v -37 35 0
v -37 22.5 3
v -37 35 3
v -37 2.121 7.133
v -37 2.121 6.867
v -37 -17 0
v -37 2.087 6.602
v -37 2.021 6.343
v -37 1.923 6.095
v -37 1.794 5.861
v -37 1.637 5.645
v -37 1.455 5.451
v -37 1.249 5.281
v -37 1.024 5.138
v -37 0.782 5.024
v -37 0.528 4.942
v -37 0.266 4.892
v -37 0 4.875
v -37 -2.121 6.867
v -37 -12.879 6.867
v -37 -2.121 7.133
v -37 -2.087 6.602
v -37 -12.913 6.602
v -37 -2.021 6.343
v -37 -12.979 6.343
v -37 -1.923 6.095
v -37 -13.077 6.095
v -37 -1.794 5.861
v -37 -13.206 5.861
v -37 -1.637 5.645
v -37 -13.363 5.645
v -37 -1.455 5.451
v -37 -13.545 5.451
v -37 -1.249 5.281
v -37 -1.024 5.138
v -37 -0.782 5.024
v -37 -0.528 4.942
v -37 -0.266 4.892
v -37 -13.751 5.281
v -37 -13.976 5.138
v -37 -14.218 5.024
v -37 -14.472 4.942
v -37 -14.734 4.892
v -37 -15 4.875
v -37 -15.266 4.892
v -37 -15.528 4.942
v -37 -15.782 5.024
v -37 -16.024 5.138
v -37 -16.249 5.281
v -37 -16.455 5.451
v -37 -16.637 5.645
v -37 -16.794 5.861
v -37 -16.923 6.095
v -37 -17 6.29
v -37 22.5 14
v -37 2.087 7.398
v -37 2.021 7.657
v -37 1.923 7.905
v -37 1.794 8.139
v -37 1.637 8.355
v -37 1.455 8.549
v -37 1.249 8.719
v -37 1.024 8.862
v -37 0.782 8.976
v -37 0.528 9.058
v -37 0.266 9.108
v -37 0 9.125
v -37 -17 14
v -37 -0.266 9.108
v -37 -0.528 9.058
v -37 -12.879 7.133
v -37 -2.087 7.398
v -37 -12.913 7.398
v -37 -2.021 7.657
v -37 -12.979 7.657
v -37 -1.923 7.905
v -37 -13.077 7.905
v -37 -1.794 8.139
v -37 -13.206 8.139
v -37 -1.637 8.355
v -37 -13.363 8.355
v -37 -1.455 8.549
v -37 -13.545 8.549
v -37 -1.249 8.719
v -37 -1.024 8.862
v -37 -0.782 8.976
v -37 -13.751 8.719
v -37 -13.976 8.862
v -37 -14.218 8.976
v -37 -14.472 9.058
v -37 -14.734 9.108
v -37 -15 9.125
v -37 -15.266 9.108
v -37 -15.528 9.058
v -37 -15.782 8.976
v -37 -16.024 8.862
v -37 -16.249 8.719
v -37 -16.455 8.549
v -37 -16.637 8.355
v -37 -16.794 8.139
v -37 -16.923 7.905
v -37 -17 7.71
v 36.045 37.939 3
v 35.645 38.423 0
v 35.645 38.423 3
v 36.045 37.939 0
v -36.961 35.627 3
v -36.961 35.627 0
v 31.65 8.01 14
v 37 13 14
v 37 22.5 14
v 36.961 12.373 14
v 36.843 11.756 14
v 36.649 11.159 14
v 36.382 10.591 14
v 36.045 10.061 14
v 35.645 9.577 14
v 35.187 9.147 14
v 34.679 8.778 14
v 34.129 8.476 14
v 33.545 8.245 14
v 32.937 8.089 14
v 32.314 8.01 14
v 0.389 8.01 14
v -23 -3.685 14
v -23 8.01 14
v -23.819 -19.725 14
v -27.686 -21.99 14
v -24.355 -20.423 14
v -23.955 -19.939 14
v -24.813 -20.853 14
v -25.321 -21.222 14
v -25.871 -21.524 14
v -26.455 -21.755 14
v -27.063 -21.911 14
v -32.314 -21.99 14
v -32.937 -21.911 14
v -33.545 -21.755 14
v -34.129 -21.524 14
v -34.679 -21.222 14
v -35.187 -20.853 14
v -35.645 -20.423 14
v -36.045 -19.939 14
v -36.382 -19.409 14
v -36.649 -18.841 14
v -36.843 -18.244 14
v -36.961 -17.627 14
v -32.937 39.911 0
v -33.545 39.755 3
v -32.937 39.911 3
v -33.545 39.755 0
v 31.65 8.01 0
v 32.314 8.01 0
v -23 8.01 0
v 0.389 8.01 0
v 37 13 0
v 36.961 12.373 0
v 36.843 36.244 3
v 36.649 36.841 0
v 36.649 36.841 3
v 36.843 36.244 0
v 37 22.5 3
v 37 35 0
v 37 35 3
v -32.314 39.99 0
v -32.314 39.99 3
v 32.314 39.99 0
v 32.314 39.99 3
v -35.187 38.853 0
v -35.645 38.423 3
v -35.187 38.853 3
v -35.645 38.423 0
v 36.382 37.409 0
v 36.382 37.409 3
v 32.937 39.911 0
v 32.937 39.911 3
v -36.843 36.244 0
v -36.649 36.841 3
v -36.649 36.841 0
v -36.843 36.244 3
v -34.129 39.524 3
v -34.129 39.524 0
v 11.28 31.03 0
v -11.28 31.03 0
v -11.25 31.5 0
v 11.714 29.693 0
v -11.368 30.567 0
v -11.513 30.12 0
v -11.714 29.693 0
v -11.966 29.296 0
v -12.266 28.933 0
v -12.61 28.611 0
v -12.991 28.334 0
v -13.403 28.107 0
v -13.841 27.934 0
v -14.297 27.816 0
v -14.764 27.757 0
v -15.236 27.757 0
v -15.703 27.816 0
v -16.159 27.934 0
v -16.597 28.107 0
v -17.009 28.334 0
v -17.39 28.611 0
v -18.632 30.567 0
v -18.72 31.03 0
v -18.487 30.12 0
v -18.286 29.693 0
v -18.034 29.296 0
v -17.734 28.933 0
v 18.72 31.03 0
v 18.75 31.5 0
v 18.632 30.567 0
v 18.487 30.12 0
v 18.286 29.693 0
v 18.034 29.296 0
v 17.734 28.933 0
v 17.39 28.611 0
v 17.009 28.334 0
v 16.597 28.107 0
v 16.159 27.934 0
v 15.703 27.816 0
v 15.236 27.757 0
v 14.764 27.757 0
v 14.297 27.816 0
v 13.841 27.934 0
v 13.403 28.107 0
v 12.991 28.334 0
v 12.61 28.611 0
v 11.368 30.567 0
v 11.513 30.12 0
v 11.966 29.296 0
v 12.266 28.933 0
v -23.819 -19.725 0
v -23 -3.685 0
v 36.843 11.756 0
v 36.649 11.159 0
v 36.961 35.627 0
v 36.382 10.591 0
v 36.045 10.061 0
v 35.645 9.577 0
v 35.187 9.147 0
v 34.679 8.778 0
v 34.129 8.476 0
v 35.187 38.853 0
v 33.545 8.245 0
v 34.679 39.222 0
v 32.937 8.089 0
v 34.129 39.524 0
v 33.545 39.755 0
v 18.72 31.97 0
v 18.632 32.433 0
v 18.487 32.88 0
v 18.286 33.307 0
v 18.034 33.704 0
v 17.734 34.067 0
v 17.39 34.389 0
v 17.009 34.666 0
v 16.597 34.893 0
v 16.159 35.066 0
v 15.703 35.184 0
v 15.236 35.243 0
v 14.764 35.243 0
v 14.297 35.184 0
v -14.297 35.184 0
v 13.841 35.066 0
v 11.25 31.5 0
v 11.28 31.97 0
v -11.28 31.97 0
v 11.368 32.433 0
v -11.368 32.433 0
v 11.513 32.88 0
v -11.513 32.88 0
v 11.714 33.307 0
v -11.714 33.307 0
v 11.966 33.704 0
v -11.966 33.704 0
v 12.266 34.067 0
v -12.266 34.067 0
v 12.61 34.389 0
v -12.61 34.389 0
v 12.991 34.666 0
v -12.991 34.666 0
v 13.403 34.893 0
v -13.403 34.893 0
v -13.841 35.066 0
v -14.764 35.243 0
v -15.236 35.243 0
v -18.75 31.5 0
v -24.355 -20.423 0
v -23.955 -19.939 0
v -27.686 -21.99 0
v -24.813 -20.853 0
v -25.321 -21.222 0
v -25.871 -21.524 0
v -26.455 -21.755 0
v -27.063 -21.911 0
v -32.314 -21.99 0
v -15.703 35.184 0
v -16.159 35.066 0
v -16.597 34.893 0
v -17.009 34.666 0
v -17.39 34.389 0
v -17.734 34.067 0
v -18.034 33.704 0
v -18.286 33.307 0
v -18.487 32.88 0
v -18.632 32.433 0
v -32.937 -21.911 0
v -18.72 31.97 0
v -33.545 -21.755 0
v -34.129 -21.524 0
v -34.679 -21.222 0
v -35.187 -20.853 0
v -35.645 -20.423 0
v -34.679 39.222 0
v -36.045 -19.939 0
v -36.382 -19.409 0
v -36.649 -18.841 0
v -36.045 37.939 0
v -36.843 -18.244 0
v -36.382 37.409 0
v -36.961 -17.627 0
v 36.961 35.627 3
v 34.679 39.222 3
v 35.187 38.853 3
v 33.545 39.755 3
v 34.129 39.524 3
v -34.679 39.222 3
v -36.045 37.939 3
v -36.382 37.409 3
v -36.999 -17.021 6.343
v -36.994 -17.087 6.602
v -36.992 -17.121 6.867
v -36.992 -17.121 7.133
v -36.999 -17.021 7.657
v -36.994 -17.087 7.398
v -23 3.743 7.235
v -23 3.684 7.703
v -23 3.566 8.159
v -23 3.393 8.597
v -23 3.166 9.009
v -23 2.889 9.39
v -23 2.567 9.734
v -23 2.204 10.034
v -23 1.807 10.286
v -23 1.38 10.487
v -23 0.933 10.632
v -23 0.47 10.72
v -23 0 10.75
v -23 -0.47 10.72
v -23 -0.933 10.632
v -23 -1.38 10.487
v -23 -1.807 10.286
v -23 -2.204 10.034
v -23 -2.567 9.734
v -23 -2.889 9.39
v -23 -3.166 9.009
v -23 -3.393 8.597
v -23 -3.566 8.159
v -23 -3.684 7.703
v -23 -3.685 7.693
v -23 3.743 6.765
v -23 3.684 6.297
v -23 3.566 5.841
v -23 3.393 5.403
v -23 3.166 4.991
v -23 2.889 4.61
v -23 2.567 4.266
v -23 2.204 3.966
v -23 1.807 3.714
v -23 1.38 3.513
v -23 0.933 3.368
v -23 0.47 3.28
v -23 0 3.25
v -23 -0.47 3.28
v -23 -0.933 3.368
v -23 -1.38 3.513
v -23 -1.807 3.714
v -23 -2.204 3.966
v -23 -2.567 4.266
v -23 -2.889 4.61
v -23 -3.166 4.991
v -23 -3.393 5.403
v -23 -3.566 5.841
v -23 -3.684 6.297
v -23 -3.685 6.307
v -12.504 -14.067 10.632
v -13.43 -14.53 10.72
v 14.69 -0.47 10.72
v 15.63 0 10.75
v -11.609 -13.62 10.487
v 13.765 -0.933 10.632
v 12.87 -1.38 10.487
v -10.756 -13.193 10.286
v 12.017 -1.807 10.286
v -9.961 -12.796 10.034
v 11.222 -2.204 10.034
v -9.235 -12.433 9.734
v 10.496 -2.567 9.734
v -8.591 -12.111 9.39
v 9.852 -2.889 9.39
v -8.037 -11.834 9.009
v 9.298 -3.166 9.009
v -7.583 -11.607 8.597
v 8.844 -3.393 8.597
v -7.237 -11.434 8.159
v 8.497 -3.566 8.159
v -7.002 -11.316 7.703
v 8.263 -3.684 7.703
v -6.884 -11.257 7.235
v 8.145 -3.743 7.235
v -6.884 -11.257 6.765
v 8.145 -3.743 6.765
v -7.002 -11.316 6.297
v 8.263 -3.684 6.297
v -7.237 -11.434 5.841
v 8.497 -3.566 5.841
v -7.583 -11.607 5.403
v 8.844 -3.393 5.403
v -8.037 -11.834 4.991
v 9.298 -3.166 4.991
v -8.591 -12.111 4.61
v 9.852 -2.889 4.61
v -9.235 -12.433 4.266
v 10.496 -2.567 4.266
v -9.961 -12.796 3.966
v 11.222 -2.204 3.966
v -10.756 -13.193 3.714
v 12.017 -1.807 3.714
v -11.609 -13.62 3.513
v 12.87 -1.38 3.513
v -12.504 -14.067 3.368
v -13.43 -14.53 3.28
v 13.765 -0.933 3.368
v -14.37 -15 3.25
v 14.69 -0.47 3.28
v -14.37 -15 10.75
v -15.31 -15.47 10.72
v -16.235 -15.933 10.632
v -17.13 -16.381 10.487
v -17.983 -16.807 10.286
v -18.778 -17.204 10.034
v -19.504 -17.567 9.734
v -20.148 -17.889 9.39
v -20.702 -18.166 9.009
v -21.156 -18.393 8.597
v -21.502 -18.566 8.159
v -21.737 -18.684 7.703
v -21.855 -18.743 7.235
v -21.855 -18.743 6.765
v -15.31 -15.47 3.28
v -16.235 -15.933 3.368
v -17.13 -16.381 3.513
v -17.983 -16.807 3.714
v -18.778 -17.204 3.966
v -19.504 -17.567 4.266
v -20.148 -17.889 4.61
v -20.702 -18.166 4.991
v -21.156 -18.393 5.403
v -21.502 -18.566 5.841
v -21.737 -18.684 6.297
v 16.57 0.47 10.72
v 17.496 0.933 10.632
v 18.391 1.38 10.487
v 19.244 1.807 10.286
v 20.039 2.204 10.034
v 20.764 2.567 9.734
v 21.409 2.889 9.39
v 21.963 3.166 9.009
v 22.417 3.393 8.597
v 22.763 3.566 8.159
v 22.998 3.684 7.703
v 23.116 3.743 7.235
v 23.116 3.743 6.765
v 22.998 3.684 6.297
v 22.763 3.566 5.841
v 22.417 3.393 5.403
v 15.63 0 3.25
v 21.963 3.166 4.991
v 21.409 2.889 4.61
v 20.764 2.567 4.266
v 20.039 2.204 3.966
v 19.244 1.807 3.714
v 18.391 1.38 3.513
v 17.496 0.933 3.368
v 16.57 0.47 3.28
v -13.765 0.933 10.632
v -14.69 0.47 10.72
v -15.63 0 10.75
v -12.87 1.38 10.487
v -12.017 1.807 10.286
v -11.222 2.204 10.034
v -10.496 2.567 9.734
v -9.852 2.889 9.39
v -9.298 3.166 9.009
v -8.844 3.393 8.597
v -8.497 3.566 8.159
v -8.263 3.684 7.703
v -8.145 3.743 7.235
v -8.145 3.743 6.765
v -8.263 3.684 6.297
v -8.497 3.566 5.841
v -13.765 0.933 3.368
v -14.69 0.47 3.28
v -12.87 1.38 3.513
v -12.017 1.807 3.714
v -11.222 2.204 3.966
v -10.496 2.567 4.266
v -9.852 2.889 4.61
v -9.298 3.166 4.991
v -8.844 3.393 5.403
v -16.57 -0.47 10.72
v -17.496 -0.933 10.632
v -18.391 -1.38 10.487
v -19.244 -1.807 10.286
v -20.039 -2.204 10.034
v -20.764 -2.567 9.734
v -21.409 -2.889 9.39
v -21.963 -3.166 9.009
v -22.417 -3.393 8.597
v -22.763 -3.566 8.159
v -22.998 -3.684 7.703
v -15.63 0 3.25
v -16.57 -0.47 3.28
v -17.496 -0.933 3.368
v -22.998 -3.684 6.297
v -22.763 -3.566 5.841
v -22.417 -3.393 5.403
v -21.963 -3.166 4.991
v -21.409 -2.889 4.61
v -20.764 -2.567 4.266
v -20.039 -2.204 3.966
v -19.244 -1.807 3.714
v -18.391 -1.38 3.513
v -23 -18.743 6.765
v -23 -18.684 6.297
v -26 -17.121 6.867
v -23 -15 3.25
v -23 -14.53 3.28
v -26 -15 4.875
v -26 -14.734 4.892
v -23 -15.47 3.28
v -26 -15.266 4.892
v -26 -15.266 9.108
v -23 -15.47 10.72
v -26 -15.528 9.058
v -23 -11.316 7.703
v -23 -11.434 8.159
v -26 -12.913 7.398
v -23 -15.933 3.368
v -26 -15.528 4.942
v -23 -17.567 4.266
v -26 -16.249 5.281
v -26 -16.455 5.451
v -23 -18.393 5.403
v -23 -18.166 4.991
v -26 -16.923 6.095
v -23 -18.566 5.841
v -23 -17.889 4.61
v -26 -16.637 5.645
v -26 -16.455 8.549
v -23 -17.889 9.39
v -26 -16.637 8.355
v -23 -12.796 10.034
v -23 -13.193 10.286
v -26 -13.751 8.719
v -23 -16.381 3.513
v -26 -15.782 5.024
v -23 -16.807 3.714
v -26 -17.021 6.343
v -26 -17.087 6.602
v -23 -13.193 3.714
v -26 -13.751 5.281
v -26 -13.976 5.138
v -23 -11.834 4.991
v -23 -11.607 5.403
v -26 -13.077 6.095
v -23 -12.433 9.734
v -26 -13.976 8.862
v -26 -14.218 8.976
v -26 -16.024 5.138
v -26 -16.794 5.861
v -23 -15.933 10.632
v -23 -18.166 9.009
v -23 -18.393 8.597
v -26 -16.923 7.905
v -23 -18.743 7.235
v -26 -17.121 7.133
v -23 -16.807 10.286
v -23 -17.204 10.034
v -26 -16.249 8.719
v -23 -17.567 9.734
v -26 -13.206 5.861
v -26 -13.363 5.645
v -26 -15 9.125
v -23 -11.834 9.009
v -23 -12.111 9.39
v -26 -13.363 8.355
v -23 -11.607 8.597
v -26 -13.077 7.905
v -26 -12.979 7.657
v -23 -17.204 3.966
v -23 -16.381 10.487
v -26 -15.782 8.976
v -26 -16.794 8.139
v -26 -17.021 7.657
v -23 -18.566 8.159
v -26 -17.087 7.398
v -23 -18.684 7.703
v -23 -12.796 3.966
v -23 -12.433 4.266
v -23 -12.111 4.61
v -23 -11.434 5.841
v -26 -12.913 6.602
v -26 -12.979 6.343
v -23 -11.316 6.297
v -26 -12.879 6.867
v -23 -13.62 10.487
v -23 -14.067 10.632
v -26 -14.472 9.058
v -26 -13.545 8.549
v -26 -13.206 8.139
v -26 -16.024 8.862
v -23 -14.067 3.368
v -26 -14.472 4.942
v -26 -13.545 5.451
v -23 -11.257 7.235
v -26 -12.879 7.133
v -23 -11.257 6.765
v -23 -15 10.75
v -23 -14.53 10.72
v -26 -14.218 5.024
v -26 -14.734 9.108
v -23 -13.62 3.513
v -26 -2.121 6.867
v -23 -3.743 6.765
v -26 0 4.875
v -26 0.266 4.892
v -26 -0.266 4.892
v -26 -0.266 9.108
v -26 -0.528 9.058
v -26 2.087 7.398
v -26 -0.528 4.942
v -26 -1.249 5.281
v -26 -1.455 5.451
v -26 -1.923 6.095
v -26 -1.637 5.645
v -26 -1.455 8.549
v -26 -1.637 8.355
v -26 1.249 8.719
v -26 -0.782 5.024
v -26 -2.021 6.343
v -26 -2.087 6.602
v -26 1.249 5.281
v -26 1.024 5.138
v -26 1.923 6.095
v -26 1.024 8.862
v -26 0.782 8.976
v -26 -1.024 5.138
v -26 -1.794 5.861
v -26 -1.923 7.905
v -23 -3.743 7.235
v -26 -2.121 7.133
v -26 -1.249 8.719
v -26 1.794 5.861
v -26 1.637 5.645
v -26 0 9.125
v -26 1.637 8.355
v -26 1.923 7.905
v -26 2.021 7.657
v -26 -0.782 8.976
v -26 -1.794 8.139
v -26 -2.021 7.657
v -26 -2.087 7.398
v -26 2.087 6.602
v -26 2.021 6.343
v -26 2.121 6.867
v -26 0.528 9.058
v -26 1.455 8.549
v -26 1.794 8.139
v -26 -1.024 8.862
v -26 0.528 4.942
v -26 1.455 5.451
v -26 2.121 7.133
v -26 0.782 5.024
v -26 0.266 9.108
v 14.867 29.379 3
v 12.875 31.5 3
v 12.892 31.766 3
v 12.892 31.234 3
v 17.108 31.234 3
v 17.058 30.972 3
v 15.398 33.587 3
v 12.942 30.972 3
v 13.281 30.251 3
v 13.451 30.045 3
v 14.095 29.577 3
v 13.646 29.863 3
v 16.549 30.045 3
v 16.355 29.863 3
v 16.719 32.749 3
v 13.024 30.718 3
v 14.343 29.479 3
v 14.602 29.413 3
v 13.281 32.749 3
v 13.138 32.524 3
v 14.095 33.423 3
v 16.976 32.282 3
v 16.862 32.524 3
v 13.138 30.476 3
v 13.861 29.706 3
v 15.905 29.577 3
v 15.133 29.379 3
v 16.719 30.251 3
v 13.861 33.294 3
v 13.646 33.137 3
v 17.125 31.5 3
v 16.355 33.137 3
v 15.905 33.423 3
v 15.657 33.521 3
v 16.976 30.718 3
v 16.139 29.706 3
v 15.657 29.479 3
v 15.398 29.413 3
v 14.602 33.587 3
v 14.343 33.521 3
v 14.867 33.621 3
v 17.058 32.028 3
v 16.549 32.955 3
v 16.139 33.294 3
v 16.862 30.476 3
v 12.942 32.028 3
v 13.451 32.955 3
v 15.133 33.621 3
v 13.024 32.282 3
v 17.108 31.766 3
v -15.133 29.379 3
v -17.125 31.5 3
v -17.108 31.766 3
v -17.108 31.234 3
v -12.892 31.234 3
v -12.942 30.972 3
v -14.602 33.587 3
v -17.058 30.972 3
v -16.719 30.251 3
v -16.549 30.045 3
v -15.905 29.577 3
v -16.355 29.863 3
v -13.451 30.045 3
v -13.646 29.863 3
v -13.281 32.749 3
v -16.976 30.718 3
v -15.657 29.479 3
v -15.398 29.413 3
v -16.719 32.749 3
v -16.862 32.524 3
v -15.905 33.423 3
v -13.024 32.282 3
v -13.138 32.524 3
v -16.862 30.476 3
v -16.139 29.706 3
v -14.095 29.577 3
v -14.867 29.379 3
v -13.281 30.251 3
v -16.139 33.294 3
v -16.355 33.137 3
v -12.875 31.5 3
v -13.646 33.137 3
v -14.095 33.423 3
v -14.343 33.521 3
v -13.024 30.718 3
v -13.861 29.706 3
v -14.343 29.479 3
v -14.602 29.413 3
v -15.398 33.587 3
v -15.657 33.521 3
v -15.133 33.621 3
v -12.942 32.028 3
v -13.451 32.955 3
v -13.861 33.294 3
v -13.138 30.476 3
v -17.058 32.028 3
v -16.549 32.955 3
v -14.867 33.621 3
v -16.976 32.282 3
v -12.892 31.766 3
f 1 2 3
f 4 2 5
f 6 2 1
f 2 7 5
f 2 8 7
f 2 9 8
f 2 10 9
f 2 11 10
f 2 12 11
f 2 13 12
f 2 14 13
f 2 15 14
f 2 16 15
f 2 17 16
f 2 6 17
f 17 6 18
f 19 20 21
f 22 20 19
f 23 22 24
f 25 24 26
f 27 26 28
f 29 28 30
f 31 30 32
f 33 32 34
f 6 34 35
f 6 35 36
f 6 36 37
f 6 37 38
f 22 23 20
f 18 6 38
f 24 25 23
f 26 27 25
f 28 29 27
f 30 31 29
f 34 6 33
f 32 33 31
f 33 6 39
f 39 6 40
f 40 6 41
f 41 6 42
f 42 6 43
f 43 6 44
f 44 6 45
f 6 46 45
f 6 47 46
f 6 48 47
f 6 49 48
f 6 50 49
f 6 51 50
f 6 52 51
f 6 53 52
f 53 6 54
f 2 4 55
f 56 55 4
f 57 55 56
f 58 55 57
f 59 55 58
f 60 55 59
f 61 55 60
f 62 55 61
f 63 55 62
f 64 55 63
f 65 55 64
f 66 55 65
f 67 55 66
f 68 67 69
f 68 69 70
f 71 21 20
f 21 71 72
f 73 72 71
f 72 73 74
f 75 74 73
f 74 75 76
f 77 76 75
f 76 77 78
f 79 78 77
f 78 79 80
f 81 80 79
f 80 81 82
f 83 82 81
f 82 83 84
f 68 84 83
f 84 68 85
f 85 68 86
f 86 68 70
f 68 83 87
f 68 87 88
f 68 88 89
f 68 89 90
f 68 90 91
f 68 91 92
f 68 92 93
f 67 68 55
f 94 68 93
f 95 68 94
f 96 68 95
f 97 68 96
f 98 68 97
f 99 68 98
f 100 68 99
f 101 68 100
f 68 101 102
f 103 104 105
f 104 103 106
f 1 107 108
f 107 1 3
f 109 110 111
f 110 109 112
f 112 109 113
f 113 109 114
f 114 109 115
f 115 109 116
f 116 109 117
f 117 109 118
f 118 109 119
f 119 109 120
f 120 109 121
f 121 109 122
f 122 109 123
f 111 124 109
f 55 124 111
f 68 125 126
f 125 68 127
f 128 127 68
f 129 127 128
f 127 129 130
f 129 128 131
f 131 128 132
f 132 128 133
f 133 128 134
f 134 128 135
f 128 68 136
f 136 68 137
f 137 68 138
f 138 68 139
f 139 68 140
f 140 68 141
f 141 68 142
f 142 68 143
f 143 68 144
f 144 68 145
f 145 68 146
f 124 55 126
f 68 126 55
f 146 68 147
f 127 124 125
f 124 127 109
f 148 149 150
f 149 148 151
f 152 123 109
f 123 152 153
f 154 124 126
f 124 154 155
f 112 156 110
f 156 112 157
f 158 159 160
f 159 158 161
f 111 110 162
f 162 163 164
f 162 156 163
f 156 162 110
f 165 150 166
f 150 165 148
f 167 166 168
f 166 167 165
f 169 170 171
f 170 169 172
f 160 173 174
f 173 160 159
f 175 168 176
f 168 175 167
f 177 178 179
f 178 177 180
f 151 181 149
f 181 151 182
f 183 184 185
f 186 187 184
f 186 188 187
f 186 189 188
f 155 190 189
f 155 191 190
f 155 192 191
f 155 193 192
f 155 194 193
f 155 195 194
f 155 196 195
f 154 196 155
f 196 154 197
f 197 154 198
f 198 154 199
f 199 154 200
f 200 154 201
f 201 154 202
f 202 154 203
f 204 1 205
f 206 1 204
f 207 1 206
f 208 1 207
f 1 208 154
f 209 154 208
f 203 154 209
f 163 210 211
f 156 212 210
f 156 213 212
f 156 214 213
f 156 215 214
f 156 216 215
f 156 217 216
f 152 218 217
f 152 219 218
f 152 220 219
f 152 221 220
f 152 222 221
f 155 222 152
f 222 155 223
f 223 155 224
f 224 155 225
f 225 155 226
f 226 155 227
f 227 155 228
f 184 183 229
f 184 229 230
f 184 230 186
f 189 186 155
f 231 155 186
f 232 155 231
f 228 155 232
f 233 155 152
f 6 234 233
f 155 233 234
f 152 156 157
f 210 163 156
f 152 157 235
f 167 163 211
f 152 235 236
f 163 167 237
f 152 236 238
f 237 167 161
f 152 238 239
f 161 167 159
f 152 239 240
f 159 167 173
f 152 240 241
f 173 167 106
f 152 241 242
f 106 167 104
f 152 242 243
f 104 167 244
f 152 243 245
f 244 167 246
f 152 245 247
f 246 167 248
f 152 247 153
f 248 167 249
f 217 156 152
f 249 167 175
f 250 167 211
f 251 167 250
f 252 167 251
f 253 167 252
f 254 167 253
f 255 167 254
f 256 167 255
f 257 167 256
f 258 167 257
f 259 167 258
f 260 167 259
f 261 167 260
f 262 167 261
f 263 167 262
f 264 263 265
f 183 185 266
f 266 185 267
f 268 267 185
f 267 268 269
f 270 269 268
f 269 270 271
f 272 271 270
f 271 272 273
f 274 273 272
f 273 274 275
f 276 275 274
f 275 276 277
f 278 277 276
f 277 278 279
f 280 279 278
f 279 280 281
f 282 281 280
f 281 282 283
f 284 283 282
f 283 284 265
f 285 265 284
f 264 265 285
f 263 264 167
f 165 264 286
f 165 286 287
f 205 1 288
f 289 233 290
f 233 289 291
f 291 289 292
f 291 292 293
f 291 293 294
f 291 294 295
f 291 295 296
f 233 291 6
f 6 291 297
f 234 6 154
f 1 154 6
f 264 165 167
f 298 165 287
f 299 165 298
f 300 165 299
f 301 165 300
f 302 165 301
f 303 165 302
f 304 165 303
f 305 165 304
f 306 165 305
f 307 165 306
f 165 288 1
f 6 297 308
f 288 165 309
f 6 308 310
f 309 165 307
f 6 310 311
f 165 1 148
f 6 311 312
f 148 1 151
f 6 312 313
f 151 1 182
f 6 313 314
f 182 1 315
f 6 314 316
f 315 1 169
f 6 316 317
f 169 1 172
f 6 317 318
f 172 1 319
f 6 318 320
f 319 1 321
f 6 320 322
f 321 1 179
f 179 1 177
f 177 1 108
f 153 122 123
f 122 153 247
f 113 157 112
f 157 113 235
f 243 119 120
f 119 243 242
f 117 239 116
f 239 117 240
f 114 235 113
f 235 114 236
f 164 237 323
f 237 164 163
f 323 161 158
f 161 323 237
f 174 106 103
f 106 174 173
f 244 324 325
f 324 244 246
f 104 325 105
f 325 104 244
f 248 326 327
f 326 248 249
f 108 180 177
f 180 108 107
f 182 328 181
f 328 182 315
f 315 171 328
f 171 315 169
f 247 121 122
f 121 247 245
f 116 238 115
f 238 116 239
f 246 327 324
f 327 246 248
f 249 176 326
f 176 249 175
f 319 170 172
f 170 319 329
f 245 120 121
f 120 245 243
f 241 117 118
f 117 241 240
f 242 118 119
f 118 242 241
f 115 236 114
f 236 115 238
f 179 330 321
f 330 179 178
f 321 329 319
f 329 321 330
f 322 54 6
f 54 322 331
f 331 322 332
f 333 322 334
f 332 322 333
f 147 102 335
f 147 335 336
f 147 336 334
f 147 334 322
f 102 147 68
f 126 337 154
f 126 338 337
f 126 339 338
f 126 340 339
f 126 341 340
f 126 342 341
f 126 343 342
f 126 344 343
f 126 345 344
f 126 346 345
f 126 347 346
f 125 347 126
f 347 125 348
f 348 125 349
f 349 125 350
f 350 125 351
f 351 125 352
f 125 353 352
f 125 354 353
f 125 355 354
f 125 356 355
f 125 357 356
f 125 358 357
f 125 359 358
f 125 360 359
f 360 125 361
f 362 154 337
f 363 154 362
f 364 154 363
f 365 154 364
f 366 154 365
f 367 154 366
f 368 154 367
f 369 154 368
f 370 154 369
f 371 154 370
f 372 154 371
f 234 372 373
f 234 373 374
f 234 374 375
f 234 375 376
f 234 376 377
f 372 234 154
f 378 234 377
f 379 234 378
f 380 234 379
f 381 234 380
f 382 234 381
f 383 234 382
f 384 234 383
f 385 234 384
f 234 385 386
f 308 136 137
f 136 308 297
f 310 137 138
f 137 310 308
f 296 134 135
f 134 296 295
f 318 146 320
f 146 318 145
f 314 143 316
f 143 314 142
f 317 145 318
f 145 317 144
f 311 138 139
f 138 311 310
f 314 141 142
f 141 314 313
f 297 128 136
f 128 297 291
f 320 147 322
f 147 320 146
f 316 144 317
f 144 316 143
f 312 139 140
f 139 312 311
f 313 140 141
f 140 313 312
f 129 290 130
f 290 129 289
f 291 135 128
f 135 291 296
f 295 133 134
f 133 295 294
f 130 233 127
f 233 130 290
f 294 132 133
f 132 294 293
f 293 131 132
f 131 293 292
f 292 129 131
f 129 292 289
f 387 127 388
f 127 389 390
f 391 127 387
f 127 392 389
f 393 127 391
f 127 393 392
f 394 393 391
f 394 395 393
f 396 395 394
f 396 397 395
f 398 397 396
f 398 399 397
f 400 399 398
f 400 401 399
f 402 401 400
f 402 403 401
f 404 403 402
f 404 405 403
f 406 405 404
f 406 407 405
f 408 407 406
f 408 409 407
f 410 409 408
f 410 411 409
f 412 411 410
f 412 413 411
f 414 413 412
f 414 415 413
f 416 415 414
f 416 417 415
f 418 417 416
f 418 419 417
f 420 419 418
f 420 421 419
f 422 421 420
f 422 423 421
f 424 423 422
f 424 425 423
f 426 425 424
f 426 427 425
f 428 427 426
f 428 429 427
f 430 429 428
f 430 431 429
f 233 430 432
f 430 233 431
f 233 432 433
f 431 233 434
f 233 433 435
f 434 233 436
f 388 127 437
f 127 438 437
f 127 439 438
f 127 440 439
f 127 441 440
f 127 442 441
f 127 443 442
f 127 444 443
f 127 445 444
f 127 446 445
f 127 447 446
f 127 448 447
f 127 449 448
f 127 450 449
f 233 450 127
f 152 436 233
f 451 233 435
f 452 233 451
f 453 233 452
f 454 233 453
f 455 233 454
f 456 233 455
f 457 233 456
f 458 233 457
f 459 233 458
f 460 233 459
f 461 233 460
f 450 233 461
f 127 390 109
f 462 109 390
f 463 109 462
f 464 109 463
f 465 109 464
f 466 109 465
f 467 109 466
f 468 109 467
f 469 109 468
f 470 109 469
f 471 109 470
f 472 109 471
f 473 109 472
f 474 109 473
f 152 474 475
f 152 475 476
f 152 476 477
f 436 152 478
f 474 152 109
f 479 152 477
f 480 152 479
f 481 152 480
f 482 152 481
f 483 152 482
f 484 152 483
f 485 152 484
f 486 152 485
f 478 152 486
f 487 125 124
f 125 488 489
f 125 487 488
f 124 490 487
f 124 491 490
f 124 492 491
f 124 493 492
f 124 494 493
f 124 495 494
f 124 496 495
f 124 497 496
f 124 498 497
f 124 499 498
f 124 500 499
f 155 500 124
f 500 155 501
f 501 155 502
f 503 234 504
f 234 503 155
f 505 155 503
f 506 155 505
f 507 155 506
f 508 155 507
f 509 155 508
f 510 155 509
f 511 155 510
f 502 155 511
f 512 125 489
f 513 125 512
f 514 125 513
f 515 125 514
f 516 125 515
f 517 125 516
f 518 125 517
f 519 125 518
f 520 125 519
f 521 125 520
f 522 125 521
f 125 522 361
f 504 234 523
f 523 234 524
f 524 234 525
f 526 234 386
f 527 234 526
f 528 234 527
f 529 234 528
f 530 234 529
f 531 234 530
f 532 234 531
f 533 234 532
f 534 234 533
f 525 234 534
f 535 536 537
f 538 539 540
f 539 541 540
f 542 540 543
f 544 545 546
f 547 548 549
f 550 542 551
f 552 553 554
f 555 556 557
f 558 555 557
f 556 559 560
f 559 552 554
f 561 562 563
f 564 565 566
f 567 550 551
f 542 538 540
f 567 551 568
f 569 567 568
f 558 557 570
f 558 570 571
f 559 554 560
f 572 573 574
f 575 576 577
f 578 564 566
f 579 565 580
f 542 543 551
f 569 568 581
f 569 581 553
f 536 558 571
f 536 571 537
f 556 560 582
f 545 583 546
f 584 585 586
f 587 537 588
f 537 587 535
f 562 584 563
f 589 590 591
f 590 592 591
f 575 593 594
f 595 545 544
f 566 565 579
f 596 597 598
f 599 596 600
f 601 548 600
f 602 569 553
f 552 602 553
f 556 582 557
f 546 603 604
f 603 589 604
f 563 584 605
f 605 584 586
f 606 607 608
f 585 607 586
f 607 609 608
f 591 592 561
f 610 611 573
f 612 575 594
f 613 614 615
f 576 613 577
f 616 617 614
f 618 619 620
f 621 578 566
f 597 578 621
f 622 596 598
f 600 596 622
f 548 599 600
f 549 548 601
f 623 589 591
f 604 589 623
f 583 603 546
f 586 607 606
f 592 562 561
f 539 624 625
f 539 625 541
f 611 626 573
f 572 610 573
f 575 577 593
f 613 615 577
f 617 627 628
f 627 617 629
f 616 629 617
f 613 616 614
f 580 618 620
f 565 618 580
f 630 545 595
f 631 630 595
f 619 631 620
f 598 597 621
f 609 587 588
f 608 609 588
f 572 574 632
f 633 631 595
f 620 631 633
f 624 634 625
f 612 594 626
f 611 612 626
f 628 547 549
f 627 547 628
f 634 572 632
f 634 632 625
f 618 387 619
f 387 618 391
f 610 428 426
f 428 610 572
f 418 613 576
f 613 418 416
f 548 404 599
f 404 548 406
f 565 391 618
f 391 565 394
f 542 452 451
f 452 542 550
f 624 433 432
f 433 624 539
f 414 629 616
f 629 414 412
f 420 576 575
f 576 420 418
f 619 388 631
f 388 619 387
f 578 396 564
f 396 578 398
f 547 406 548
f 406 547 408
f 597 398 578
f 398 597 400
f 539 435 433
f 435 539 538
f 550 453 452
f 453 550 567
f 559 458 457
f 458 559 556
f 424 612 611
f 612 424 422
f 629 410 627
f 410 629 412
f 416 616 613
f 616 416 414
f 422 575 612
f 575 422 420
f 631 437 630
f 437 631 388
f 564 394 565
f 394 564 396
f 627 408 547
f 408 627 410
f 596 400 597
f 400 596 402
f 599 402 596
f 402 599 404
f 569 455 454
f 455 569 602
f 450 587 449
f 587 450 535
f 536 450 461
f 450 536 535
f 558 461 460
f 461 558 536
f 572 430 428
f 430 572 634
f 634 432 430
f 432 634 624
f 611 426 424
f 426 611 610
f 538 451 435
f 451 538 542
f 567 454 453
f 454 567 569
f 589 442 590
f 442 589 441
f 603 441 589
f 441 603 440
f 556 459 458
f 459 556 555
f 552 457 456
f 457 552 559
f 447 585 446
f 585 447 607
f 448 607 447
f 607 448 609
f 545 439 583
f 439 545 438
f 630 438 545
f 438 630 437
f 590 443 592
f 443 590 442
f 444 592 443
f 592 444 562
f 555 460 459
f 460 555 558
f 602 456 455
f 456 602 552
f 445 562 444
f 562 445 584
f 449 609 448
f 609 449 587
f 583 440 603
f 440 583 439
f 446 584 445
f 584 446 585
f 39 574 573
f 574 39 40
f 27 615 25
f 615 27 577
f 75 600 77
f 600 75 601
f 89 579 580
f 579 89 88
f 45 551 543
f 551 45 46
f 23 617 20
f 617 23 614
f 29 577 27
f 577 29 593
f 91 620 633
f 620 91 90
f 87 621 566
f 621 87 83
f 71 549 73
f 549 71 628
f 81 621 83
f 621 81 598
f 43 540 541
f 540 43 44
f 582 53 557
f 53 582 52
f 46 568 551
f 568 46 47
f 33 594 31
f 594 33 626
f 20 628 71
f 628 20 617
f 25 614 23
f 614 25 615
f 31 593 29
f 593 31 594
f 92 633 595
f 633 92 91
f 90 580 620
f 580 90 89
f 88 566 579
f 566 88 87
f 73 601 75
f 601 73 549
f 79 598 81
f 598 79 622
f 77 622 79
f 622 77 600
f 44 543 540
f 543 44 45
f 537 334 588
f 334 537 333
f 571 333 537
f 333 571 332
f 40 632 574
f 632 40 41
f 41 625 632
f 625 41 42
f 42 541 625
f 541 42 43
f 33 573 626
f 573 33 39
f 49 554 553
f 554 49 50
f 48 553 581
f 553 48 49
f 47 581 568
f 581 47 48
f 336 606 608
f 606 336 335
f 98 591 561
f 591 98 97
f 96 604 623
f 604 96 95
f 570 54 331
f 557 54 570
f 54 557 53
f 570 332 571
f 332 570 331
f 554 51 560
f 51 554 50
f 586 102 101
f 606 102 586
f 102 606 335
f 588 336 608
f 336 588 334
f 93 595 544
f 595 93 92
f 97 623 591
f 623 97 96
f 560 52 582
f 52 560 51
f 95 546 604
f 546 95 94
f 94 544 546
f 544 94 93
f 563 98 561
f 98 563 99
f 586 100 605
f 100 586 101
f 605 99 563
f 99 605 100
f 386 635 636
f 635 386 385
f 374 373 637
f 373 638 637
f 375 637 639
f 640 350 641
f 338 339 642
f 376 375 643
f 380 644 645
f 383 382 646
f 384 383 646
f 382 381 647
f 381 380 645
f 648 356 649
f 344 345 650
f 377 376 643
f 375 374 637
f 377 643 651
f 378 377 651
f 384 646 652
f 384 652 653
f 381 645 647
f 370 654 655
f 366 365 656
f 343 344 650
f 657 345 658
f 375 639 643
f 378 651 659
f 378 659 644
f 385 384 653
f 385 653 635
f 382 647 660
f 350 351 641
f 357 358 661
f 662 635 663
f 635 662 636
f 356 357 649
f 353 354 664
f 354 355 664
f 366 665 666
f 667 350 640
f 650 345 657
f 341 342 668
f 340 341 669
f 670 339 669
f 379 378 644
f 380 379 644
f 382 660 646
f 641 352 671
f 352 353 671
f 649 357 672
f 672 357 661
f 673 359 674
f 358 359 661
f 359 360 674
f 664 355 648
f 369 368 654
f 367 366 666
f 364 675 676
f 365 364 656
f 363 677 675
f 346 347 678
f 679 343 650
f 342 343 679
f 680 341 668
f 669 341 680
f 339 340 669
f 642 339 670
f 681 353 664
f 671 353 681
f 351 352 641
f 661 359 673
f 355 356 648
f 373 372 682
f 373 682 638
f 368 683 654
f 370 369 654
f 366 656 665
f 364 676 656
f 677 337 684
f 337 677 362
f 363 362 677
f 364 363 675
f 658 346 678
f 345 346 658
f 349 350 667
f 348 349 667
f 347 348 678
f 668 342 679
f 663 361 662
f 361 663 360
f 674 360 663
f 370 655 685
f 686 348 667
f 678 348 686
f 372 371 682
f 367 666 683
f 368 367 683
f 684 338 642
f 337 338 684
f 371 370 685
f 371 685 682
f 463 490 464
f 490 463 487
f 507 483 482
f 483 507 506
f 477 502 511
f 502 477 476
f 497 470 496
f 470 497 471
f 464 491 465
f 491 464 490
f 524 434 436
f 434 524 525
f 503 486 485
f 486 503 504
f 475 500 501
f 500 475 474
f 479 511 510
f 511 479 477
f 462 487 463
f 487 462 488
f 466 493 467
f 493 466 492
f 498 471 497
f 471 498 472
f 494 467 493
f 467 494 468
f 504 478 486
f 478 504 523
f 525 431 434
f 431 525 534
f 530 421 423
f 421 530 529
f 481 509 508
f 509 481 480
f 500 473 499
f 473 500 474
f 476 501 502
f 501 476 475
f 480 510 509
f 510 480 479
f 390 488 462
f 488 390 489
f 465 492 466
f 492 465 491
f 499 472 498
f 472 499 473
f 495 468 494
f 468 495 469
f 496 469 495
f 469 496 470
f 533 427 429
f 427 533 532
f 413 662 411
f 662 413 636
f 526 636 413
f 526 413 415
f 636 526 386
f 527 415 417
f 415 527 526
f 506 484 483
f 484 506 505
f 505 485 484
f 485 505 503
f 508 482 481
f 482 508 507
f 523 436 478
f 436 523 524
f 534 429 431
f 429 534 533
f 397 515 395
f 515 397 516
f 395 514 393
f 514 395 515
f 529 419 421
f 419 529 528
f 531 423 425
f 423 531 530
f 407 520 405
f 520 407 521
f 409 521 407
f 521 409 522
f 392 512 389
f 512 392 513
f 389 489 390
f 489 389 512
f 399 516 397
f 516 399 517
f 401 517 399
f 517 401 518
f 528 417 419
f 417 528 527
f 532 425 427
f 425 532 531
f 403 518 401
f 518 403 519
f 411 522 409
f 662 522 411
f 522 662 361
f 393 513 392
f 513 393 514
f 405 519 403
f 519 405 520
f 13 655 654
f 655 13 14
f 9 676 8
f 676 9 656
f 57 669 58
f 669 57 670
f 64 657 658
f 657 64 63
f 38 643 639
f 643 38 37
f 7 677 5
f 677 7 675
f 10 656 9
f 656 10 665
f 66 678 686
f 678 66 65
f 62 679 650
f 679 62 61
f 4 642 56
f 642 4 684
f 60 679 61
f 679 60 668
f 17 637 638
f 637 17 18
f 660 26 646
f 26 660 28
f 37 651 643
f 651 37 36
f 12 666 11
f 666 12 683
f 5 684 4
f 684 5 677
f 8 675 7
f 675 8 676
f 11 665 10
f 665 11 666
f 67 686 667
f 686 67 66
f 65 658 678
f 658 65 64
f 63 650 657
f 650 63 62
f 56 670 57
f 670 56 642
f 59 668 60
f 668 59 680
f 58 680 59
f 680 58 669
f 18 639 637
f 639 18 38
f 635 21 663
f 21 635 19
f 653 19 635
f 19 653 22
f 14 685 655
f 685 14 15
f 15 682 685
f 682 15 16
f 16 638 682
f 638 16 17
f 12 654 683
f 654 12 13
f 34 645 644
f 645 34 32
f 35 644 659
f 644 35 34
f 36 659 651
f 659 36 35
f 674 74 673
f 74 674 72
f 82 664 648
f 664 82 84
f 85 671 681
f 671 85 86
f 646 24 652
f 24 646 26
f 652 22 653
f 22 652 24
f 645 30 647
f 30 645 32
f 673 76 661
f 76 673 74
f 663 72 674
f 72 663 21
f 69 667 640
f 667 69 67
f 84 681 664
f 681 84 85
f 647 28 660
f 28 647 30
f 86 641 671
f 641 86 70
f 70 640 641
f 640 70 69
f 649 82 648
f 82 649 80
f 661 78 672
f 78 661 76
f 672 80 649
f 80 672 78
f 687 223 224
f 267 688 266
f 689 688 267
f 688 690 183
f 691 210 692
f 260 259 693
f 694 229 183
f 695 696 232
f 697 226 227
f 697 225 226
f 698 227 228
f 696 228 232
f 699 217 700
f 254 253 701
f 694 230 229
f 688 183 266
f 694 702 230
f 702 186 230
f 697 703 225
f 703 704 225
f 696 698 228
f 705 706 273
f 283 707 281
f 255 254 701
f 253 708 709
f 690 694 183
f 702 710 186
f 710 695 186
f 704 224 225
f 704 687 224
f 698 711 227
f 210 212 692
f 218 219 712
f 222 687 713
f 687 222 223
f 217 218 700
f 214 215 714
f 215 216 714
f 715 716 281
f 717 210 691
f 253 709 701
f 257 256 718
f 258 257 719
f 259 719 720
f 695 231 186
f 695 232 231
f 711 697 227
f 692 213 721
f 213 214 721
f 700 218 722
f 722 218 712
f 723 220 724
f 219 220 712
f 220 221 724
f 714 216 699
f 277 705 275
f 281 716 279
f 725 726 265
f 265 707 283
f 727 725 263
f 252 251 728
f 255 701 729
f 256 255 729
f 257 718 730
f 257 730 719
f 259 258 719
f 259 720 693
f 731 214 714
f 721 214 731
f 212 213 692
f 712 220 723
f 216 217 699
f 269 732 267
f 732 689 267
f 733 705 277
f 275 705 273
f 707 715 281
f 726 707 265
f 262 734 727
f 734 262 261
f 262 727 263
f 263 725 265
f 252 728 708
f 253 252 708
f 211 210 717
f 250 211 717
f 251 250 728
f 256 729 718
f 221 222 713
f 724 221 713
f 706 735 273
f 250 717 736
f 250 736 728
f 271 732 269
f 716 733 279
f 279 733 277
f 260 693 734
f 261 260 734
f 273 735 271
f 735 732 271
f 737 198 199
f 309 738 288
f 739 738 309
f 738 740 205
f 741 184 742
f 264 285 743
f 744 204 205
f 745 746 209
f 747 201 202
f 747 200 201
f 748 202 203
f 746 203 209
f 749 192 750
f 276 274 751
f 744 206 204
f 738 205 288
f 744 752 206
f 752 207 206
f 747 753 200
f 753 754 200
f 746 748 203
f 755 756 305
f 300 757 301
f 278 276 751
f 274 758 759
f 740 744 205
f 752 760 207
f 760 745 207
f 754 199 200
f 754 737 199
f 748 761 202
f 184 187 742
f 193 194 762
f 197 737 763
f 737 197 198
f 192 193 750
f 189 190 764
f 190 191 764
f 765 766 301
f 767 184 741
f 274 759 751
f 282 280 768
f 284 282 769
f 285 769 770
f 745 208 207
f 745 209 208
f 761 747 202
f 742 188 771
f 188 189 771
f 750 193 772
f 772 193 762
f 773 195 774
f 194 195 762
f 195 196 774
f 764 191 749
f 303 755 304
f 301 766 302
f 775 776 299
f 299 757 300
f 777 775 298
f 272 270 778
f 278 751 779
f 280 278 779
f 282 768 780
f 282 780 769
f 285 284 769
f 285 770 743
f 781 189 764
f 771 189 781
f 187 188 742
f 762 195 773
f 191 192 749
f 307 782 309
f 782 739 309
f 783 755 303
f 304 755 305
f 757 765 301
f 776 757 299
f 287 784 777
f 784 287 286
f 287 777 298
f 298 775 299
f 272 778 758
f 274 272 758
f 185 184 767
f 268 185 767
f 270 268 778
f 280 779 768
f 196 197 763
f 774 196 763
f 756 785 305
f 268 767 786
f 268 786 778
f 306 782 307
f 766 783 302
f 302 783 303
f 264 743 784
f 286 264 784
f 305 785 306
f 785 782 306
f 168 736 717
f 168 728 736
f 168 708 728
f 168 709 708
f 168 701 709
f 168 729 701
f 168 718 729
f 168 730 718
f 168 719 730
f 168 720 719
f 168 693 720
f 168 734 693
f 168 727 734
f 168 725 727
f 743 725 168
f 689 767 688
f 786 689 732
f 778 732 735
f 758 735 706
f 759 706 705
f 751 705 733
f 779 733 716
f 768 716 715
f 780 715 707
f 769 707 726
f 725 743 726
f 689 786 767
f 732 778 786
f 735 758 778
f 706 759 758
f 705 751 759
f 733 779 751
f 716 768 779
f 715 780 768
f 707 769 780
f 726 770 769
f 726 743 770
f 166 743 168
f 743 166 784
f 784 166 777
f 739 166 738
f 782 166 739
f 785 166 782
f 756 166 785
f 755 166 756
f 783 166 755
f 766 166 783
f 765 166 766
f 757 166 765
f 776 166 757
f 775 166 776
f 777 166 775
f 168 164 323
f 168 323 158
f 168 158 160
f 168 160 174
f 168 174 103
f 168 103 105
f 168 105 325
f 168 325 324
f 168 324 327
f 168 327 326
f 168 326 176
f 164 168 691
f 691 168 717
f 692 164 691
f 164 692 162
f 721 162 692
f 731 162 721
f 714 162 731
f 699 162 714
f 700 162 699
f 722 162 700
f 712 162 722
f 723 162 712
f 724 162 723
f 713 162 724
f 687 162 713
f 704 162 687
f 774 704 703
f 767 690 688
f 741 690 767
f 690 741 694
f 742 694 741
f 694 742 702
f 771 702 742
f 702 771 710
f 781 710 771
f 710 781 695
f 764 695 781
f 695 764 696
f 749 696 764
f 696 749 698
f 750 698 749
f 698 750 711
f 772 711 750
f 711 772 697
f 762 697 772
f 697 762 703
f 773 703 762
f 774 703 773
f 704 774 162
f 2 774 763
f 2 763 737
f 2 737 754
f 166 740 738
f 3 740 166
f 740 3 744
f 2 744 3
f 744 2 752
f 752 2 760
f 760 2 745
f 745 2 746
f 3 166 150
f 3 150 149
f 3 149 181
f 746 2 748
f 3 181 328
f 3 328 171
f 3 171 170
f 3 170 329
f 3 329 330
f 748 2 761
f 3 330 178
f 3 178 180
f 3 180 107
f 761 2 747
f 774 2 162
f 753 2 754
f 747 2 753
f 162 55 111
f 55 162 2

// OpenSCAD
$fn = 50;


difference() {
	union() {
		translate(v = [0, 24.0000000000, 0]) {
			hull() {
				translate(v = [-32.0000000000, 11.0000000000, 0]) {
					cylinder(h = 14, r = 5);
				}
				translate(v = [32.0000000000, 11.0000000000, 0]) {
					cylinder(h = 14, r = 5);
				}
				translate(v = [-32.0000000000, -11.0000000000, 0]) {
					cylinder(h = 14, r = 5);
				}
				translate(v = [32.0000000000, -11.0000000000, 0]) {
					cylinder(h = 14, r = 5);
				}
			}
		}
		translate(v = [-30.0000000000, 0, 0]) {
			hull() {
				translate(v = [-2.0000000000, 17.0000000000, 0]) {
					cylinder(h = 14, r = 5);
				}
				translate(v = [2.0000000000, 17.0000000000, 0]) {
					cylinder(h = 14, r = 5);
				}
				translate(v = [-2.0000000000, -17.0000000000, 0]) {
					cylinder(h = 14, r = 5);
				}
				translate(v = [2.0000000000, -17.0000000000, 0]) {
					cylinder(h = 14, r = 5);
				}
			}
		}
		rotate(a = [0, 0, 26.5650511771]) {
			hull() {
				translate(v = [-33.0410196625, 2.0000000000, 0]) {
					cylinder(h = 14, r = 5);
				}
				translate(v = [33.0410196625, 2.0000000000, 0]) {
					cylinder(h = 14, r = 5);
				}
				translate(v = [-33.0410196625, -2.0000000000, 0]) {
					cylinder(h = 14, r = 5);
				}
				translate(v = [33.0410196625, -2.0000000000, 0]) {
					cylinder(h = 14, r = 5);
				}
			}
		}
	}
	union() {
		translate(v = [-23.0000000000, -15.0000000000, 7.0000000000]) {
			rotate(a = [0, 90, 0]) {
				difference() {
					union() {
						#translate(v = [0, 0, -14.0000000000]) {
							cylinder(h = 14, r = 2.0000000000);
						}
						#translate(v = [0, 0, -3]) {
							cylinder(h = 3, r1 = 2.1250000000, r2 = 3.7500000000);
						}
						#cylinder(h = 250, r = 3.7500000000);
						#translate(v = [0, 0, -14.0000000000]) {
							cylinder(h = 14, r = 2.1250000000);
						}
						#translate(v = [0, 0, -14.0000000000]) {
							cylinder(h = 14, r = 2.0000000000);
						}
					}
					union();
				}
			}
		}
		translate(v = [-23.0000000000, 0.0000000000, 7.0000000000]) {
			rotate(a = [0, 90, 0]) {
				difference() {
					union() {
						#translate(v = [0, 0, -14.0000000000]) {
							cylinder(h = 14, r = 2.0000000000);
						}
						#translate(v = [0, 0, -3]) {
							cylinder(h = 3, r1 = 2.1250000000, r2 = 3.7500000000);
						}
						#cylinder(h = 250, r = 3.7500000000);
						#translate(v = [0, 0, -14.0000000000]) {
							cylinder(h = 14, r = 2.1250000000);
						}
						#translate(v = [0, 0, -14.0000000000]) {
							cylinder(h = 14, r = 2.0000000000);
						}
					}
					union();
				}
			}
		}
		translate(v = [15.0000000000, 31.5000000000, 0.0000000000]) {
			rotate(a = [0, 180, 0]) {
				difference() {
					union() {
						#translate(v = [0, 0, -14.0000000000]) {
							cylinder(h = 14, r = 2.0000000000);
						}
						#translate(v = [0, 0, -3]) {
							cylinder(h = 3, r1 = 2.1250000000, r2 = 3.7500000000);
						}
						#cylinder(h = 250, r = 3.7500000000);
						#translate(v = [0, 0, -14.0000000000]) {
							cylinder(h = 14, r = 2.1250000000);
						}
						#translate(v = [0, 0, -14.0000000000]) {
							cylinder(h = 14, r = 2.0000000000);
						}
					}
					union();
				}
			}
		}
		translate(v = [-15.0000000000, 31.5000000000, 0.0000000000]) {
			rotate(a = [0, 180, 0]) {
				difference() {
					union() {
						#translate(v = [0, 0, -14.0000000000]) {
							cylinder(h = 14, r = 2.0000000000);
						}
						#translate(v = [0, 0, -3]) {
							cylinder(h = 3, r1 = 2.1250000000, r2 = 3.7500000000);
						}
						#cylinder(h = 250, r = 3.7500000000);
						#translate(v = [0, 0, -14.0000000000]) {
							cylinder(h = 14, r = 2.1250000000);
						}
						#translate(v = [0, 0, -14.0000000000]) {
							cylinder(h = 14, r = 2.0000000000);
						}
					}
					union();
				}
			}
		}
		translate(v = [-37.0000000000, 22.5000000000, 3]) {
			cube(size = [74, 18, 11]);
		}
	}
}
